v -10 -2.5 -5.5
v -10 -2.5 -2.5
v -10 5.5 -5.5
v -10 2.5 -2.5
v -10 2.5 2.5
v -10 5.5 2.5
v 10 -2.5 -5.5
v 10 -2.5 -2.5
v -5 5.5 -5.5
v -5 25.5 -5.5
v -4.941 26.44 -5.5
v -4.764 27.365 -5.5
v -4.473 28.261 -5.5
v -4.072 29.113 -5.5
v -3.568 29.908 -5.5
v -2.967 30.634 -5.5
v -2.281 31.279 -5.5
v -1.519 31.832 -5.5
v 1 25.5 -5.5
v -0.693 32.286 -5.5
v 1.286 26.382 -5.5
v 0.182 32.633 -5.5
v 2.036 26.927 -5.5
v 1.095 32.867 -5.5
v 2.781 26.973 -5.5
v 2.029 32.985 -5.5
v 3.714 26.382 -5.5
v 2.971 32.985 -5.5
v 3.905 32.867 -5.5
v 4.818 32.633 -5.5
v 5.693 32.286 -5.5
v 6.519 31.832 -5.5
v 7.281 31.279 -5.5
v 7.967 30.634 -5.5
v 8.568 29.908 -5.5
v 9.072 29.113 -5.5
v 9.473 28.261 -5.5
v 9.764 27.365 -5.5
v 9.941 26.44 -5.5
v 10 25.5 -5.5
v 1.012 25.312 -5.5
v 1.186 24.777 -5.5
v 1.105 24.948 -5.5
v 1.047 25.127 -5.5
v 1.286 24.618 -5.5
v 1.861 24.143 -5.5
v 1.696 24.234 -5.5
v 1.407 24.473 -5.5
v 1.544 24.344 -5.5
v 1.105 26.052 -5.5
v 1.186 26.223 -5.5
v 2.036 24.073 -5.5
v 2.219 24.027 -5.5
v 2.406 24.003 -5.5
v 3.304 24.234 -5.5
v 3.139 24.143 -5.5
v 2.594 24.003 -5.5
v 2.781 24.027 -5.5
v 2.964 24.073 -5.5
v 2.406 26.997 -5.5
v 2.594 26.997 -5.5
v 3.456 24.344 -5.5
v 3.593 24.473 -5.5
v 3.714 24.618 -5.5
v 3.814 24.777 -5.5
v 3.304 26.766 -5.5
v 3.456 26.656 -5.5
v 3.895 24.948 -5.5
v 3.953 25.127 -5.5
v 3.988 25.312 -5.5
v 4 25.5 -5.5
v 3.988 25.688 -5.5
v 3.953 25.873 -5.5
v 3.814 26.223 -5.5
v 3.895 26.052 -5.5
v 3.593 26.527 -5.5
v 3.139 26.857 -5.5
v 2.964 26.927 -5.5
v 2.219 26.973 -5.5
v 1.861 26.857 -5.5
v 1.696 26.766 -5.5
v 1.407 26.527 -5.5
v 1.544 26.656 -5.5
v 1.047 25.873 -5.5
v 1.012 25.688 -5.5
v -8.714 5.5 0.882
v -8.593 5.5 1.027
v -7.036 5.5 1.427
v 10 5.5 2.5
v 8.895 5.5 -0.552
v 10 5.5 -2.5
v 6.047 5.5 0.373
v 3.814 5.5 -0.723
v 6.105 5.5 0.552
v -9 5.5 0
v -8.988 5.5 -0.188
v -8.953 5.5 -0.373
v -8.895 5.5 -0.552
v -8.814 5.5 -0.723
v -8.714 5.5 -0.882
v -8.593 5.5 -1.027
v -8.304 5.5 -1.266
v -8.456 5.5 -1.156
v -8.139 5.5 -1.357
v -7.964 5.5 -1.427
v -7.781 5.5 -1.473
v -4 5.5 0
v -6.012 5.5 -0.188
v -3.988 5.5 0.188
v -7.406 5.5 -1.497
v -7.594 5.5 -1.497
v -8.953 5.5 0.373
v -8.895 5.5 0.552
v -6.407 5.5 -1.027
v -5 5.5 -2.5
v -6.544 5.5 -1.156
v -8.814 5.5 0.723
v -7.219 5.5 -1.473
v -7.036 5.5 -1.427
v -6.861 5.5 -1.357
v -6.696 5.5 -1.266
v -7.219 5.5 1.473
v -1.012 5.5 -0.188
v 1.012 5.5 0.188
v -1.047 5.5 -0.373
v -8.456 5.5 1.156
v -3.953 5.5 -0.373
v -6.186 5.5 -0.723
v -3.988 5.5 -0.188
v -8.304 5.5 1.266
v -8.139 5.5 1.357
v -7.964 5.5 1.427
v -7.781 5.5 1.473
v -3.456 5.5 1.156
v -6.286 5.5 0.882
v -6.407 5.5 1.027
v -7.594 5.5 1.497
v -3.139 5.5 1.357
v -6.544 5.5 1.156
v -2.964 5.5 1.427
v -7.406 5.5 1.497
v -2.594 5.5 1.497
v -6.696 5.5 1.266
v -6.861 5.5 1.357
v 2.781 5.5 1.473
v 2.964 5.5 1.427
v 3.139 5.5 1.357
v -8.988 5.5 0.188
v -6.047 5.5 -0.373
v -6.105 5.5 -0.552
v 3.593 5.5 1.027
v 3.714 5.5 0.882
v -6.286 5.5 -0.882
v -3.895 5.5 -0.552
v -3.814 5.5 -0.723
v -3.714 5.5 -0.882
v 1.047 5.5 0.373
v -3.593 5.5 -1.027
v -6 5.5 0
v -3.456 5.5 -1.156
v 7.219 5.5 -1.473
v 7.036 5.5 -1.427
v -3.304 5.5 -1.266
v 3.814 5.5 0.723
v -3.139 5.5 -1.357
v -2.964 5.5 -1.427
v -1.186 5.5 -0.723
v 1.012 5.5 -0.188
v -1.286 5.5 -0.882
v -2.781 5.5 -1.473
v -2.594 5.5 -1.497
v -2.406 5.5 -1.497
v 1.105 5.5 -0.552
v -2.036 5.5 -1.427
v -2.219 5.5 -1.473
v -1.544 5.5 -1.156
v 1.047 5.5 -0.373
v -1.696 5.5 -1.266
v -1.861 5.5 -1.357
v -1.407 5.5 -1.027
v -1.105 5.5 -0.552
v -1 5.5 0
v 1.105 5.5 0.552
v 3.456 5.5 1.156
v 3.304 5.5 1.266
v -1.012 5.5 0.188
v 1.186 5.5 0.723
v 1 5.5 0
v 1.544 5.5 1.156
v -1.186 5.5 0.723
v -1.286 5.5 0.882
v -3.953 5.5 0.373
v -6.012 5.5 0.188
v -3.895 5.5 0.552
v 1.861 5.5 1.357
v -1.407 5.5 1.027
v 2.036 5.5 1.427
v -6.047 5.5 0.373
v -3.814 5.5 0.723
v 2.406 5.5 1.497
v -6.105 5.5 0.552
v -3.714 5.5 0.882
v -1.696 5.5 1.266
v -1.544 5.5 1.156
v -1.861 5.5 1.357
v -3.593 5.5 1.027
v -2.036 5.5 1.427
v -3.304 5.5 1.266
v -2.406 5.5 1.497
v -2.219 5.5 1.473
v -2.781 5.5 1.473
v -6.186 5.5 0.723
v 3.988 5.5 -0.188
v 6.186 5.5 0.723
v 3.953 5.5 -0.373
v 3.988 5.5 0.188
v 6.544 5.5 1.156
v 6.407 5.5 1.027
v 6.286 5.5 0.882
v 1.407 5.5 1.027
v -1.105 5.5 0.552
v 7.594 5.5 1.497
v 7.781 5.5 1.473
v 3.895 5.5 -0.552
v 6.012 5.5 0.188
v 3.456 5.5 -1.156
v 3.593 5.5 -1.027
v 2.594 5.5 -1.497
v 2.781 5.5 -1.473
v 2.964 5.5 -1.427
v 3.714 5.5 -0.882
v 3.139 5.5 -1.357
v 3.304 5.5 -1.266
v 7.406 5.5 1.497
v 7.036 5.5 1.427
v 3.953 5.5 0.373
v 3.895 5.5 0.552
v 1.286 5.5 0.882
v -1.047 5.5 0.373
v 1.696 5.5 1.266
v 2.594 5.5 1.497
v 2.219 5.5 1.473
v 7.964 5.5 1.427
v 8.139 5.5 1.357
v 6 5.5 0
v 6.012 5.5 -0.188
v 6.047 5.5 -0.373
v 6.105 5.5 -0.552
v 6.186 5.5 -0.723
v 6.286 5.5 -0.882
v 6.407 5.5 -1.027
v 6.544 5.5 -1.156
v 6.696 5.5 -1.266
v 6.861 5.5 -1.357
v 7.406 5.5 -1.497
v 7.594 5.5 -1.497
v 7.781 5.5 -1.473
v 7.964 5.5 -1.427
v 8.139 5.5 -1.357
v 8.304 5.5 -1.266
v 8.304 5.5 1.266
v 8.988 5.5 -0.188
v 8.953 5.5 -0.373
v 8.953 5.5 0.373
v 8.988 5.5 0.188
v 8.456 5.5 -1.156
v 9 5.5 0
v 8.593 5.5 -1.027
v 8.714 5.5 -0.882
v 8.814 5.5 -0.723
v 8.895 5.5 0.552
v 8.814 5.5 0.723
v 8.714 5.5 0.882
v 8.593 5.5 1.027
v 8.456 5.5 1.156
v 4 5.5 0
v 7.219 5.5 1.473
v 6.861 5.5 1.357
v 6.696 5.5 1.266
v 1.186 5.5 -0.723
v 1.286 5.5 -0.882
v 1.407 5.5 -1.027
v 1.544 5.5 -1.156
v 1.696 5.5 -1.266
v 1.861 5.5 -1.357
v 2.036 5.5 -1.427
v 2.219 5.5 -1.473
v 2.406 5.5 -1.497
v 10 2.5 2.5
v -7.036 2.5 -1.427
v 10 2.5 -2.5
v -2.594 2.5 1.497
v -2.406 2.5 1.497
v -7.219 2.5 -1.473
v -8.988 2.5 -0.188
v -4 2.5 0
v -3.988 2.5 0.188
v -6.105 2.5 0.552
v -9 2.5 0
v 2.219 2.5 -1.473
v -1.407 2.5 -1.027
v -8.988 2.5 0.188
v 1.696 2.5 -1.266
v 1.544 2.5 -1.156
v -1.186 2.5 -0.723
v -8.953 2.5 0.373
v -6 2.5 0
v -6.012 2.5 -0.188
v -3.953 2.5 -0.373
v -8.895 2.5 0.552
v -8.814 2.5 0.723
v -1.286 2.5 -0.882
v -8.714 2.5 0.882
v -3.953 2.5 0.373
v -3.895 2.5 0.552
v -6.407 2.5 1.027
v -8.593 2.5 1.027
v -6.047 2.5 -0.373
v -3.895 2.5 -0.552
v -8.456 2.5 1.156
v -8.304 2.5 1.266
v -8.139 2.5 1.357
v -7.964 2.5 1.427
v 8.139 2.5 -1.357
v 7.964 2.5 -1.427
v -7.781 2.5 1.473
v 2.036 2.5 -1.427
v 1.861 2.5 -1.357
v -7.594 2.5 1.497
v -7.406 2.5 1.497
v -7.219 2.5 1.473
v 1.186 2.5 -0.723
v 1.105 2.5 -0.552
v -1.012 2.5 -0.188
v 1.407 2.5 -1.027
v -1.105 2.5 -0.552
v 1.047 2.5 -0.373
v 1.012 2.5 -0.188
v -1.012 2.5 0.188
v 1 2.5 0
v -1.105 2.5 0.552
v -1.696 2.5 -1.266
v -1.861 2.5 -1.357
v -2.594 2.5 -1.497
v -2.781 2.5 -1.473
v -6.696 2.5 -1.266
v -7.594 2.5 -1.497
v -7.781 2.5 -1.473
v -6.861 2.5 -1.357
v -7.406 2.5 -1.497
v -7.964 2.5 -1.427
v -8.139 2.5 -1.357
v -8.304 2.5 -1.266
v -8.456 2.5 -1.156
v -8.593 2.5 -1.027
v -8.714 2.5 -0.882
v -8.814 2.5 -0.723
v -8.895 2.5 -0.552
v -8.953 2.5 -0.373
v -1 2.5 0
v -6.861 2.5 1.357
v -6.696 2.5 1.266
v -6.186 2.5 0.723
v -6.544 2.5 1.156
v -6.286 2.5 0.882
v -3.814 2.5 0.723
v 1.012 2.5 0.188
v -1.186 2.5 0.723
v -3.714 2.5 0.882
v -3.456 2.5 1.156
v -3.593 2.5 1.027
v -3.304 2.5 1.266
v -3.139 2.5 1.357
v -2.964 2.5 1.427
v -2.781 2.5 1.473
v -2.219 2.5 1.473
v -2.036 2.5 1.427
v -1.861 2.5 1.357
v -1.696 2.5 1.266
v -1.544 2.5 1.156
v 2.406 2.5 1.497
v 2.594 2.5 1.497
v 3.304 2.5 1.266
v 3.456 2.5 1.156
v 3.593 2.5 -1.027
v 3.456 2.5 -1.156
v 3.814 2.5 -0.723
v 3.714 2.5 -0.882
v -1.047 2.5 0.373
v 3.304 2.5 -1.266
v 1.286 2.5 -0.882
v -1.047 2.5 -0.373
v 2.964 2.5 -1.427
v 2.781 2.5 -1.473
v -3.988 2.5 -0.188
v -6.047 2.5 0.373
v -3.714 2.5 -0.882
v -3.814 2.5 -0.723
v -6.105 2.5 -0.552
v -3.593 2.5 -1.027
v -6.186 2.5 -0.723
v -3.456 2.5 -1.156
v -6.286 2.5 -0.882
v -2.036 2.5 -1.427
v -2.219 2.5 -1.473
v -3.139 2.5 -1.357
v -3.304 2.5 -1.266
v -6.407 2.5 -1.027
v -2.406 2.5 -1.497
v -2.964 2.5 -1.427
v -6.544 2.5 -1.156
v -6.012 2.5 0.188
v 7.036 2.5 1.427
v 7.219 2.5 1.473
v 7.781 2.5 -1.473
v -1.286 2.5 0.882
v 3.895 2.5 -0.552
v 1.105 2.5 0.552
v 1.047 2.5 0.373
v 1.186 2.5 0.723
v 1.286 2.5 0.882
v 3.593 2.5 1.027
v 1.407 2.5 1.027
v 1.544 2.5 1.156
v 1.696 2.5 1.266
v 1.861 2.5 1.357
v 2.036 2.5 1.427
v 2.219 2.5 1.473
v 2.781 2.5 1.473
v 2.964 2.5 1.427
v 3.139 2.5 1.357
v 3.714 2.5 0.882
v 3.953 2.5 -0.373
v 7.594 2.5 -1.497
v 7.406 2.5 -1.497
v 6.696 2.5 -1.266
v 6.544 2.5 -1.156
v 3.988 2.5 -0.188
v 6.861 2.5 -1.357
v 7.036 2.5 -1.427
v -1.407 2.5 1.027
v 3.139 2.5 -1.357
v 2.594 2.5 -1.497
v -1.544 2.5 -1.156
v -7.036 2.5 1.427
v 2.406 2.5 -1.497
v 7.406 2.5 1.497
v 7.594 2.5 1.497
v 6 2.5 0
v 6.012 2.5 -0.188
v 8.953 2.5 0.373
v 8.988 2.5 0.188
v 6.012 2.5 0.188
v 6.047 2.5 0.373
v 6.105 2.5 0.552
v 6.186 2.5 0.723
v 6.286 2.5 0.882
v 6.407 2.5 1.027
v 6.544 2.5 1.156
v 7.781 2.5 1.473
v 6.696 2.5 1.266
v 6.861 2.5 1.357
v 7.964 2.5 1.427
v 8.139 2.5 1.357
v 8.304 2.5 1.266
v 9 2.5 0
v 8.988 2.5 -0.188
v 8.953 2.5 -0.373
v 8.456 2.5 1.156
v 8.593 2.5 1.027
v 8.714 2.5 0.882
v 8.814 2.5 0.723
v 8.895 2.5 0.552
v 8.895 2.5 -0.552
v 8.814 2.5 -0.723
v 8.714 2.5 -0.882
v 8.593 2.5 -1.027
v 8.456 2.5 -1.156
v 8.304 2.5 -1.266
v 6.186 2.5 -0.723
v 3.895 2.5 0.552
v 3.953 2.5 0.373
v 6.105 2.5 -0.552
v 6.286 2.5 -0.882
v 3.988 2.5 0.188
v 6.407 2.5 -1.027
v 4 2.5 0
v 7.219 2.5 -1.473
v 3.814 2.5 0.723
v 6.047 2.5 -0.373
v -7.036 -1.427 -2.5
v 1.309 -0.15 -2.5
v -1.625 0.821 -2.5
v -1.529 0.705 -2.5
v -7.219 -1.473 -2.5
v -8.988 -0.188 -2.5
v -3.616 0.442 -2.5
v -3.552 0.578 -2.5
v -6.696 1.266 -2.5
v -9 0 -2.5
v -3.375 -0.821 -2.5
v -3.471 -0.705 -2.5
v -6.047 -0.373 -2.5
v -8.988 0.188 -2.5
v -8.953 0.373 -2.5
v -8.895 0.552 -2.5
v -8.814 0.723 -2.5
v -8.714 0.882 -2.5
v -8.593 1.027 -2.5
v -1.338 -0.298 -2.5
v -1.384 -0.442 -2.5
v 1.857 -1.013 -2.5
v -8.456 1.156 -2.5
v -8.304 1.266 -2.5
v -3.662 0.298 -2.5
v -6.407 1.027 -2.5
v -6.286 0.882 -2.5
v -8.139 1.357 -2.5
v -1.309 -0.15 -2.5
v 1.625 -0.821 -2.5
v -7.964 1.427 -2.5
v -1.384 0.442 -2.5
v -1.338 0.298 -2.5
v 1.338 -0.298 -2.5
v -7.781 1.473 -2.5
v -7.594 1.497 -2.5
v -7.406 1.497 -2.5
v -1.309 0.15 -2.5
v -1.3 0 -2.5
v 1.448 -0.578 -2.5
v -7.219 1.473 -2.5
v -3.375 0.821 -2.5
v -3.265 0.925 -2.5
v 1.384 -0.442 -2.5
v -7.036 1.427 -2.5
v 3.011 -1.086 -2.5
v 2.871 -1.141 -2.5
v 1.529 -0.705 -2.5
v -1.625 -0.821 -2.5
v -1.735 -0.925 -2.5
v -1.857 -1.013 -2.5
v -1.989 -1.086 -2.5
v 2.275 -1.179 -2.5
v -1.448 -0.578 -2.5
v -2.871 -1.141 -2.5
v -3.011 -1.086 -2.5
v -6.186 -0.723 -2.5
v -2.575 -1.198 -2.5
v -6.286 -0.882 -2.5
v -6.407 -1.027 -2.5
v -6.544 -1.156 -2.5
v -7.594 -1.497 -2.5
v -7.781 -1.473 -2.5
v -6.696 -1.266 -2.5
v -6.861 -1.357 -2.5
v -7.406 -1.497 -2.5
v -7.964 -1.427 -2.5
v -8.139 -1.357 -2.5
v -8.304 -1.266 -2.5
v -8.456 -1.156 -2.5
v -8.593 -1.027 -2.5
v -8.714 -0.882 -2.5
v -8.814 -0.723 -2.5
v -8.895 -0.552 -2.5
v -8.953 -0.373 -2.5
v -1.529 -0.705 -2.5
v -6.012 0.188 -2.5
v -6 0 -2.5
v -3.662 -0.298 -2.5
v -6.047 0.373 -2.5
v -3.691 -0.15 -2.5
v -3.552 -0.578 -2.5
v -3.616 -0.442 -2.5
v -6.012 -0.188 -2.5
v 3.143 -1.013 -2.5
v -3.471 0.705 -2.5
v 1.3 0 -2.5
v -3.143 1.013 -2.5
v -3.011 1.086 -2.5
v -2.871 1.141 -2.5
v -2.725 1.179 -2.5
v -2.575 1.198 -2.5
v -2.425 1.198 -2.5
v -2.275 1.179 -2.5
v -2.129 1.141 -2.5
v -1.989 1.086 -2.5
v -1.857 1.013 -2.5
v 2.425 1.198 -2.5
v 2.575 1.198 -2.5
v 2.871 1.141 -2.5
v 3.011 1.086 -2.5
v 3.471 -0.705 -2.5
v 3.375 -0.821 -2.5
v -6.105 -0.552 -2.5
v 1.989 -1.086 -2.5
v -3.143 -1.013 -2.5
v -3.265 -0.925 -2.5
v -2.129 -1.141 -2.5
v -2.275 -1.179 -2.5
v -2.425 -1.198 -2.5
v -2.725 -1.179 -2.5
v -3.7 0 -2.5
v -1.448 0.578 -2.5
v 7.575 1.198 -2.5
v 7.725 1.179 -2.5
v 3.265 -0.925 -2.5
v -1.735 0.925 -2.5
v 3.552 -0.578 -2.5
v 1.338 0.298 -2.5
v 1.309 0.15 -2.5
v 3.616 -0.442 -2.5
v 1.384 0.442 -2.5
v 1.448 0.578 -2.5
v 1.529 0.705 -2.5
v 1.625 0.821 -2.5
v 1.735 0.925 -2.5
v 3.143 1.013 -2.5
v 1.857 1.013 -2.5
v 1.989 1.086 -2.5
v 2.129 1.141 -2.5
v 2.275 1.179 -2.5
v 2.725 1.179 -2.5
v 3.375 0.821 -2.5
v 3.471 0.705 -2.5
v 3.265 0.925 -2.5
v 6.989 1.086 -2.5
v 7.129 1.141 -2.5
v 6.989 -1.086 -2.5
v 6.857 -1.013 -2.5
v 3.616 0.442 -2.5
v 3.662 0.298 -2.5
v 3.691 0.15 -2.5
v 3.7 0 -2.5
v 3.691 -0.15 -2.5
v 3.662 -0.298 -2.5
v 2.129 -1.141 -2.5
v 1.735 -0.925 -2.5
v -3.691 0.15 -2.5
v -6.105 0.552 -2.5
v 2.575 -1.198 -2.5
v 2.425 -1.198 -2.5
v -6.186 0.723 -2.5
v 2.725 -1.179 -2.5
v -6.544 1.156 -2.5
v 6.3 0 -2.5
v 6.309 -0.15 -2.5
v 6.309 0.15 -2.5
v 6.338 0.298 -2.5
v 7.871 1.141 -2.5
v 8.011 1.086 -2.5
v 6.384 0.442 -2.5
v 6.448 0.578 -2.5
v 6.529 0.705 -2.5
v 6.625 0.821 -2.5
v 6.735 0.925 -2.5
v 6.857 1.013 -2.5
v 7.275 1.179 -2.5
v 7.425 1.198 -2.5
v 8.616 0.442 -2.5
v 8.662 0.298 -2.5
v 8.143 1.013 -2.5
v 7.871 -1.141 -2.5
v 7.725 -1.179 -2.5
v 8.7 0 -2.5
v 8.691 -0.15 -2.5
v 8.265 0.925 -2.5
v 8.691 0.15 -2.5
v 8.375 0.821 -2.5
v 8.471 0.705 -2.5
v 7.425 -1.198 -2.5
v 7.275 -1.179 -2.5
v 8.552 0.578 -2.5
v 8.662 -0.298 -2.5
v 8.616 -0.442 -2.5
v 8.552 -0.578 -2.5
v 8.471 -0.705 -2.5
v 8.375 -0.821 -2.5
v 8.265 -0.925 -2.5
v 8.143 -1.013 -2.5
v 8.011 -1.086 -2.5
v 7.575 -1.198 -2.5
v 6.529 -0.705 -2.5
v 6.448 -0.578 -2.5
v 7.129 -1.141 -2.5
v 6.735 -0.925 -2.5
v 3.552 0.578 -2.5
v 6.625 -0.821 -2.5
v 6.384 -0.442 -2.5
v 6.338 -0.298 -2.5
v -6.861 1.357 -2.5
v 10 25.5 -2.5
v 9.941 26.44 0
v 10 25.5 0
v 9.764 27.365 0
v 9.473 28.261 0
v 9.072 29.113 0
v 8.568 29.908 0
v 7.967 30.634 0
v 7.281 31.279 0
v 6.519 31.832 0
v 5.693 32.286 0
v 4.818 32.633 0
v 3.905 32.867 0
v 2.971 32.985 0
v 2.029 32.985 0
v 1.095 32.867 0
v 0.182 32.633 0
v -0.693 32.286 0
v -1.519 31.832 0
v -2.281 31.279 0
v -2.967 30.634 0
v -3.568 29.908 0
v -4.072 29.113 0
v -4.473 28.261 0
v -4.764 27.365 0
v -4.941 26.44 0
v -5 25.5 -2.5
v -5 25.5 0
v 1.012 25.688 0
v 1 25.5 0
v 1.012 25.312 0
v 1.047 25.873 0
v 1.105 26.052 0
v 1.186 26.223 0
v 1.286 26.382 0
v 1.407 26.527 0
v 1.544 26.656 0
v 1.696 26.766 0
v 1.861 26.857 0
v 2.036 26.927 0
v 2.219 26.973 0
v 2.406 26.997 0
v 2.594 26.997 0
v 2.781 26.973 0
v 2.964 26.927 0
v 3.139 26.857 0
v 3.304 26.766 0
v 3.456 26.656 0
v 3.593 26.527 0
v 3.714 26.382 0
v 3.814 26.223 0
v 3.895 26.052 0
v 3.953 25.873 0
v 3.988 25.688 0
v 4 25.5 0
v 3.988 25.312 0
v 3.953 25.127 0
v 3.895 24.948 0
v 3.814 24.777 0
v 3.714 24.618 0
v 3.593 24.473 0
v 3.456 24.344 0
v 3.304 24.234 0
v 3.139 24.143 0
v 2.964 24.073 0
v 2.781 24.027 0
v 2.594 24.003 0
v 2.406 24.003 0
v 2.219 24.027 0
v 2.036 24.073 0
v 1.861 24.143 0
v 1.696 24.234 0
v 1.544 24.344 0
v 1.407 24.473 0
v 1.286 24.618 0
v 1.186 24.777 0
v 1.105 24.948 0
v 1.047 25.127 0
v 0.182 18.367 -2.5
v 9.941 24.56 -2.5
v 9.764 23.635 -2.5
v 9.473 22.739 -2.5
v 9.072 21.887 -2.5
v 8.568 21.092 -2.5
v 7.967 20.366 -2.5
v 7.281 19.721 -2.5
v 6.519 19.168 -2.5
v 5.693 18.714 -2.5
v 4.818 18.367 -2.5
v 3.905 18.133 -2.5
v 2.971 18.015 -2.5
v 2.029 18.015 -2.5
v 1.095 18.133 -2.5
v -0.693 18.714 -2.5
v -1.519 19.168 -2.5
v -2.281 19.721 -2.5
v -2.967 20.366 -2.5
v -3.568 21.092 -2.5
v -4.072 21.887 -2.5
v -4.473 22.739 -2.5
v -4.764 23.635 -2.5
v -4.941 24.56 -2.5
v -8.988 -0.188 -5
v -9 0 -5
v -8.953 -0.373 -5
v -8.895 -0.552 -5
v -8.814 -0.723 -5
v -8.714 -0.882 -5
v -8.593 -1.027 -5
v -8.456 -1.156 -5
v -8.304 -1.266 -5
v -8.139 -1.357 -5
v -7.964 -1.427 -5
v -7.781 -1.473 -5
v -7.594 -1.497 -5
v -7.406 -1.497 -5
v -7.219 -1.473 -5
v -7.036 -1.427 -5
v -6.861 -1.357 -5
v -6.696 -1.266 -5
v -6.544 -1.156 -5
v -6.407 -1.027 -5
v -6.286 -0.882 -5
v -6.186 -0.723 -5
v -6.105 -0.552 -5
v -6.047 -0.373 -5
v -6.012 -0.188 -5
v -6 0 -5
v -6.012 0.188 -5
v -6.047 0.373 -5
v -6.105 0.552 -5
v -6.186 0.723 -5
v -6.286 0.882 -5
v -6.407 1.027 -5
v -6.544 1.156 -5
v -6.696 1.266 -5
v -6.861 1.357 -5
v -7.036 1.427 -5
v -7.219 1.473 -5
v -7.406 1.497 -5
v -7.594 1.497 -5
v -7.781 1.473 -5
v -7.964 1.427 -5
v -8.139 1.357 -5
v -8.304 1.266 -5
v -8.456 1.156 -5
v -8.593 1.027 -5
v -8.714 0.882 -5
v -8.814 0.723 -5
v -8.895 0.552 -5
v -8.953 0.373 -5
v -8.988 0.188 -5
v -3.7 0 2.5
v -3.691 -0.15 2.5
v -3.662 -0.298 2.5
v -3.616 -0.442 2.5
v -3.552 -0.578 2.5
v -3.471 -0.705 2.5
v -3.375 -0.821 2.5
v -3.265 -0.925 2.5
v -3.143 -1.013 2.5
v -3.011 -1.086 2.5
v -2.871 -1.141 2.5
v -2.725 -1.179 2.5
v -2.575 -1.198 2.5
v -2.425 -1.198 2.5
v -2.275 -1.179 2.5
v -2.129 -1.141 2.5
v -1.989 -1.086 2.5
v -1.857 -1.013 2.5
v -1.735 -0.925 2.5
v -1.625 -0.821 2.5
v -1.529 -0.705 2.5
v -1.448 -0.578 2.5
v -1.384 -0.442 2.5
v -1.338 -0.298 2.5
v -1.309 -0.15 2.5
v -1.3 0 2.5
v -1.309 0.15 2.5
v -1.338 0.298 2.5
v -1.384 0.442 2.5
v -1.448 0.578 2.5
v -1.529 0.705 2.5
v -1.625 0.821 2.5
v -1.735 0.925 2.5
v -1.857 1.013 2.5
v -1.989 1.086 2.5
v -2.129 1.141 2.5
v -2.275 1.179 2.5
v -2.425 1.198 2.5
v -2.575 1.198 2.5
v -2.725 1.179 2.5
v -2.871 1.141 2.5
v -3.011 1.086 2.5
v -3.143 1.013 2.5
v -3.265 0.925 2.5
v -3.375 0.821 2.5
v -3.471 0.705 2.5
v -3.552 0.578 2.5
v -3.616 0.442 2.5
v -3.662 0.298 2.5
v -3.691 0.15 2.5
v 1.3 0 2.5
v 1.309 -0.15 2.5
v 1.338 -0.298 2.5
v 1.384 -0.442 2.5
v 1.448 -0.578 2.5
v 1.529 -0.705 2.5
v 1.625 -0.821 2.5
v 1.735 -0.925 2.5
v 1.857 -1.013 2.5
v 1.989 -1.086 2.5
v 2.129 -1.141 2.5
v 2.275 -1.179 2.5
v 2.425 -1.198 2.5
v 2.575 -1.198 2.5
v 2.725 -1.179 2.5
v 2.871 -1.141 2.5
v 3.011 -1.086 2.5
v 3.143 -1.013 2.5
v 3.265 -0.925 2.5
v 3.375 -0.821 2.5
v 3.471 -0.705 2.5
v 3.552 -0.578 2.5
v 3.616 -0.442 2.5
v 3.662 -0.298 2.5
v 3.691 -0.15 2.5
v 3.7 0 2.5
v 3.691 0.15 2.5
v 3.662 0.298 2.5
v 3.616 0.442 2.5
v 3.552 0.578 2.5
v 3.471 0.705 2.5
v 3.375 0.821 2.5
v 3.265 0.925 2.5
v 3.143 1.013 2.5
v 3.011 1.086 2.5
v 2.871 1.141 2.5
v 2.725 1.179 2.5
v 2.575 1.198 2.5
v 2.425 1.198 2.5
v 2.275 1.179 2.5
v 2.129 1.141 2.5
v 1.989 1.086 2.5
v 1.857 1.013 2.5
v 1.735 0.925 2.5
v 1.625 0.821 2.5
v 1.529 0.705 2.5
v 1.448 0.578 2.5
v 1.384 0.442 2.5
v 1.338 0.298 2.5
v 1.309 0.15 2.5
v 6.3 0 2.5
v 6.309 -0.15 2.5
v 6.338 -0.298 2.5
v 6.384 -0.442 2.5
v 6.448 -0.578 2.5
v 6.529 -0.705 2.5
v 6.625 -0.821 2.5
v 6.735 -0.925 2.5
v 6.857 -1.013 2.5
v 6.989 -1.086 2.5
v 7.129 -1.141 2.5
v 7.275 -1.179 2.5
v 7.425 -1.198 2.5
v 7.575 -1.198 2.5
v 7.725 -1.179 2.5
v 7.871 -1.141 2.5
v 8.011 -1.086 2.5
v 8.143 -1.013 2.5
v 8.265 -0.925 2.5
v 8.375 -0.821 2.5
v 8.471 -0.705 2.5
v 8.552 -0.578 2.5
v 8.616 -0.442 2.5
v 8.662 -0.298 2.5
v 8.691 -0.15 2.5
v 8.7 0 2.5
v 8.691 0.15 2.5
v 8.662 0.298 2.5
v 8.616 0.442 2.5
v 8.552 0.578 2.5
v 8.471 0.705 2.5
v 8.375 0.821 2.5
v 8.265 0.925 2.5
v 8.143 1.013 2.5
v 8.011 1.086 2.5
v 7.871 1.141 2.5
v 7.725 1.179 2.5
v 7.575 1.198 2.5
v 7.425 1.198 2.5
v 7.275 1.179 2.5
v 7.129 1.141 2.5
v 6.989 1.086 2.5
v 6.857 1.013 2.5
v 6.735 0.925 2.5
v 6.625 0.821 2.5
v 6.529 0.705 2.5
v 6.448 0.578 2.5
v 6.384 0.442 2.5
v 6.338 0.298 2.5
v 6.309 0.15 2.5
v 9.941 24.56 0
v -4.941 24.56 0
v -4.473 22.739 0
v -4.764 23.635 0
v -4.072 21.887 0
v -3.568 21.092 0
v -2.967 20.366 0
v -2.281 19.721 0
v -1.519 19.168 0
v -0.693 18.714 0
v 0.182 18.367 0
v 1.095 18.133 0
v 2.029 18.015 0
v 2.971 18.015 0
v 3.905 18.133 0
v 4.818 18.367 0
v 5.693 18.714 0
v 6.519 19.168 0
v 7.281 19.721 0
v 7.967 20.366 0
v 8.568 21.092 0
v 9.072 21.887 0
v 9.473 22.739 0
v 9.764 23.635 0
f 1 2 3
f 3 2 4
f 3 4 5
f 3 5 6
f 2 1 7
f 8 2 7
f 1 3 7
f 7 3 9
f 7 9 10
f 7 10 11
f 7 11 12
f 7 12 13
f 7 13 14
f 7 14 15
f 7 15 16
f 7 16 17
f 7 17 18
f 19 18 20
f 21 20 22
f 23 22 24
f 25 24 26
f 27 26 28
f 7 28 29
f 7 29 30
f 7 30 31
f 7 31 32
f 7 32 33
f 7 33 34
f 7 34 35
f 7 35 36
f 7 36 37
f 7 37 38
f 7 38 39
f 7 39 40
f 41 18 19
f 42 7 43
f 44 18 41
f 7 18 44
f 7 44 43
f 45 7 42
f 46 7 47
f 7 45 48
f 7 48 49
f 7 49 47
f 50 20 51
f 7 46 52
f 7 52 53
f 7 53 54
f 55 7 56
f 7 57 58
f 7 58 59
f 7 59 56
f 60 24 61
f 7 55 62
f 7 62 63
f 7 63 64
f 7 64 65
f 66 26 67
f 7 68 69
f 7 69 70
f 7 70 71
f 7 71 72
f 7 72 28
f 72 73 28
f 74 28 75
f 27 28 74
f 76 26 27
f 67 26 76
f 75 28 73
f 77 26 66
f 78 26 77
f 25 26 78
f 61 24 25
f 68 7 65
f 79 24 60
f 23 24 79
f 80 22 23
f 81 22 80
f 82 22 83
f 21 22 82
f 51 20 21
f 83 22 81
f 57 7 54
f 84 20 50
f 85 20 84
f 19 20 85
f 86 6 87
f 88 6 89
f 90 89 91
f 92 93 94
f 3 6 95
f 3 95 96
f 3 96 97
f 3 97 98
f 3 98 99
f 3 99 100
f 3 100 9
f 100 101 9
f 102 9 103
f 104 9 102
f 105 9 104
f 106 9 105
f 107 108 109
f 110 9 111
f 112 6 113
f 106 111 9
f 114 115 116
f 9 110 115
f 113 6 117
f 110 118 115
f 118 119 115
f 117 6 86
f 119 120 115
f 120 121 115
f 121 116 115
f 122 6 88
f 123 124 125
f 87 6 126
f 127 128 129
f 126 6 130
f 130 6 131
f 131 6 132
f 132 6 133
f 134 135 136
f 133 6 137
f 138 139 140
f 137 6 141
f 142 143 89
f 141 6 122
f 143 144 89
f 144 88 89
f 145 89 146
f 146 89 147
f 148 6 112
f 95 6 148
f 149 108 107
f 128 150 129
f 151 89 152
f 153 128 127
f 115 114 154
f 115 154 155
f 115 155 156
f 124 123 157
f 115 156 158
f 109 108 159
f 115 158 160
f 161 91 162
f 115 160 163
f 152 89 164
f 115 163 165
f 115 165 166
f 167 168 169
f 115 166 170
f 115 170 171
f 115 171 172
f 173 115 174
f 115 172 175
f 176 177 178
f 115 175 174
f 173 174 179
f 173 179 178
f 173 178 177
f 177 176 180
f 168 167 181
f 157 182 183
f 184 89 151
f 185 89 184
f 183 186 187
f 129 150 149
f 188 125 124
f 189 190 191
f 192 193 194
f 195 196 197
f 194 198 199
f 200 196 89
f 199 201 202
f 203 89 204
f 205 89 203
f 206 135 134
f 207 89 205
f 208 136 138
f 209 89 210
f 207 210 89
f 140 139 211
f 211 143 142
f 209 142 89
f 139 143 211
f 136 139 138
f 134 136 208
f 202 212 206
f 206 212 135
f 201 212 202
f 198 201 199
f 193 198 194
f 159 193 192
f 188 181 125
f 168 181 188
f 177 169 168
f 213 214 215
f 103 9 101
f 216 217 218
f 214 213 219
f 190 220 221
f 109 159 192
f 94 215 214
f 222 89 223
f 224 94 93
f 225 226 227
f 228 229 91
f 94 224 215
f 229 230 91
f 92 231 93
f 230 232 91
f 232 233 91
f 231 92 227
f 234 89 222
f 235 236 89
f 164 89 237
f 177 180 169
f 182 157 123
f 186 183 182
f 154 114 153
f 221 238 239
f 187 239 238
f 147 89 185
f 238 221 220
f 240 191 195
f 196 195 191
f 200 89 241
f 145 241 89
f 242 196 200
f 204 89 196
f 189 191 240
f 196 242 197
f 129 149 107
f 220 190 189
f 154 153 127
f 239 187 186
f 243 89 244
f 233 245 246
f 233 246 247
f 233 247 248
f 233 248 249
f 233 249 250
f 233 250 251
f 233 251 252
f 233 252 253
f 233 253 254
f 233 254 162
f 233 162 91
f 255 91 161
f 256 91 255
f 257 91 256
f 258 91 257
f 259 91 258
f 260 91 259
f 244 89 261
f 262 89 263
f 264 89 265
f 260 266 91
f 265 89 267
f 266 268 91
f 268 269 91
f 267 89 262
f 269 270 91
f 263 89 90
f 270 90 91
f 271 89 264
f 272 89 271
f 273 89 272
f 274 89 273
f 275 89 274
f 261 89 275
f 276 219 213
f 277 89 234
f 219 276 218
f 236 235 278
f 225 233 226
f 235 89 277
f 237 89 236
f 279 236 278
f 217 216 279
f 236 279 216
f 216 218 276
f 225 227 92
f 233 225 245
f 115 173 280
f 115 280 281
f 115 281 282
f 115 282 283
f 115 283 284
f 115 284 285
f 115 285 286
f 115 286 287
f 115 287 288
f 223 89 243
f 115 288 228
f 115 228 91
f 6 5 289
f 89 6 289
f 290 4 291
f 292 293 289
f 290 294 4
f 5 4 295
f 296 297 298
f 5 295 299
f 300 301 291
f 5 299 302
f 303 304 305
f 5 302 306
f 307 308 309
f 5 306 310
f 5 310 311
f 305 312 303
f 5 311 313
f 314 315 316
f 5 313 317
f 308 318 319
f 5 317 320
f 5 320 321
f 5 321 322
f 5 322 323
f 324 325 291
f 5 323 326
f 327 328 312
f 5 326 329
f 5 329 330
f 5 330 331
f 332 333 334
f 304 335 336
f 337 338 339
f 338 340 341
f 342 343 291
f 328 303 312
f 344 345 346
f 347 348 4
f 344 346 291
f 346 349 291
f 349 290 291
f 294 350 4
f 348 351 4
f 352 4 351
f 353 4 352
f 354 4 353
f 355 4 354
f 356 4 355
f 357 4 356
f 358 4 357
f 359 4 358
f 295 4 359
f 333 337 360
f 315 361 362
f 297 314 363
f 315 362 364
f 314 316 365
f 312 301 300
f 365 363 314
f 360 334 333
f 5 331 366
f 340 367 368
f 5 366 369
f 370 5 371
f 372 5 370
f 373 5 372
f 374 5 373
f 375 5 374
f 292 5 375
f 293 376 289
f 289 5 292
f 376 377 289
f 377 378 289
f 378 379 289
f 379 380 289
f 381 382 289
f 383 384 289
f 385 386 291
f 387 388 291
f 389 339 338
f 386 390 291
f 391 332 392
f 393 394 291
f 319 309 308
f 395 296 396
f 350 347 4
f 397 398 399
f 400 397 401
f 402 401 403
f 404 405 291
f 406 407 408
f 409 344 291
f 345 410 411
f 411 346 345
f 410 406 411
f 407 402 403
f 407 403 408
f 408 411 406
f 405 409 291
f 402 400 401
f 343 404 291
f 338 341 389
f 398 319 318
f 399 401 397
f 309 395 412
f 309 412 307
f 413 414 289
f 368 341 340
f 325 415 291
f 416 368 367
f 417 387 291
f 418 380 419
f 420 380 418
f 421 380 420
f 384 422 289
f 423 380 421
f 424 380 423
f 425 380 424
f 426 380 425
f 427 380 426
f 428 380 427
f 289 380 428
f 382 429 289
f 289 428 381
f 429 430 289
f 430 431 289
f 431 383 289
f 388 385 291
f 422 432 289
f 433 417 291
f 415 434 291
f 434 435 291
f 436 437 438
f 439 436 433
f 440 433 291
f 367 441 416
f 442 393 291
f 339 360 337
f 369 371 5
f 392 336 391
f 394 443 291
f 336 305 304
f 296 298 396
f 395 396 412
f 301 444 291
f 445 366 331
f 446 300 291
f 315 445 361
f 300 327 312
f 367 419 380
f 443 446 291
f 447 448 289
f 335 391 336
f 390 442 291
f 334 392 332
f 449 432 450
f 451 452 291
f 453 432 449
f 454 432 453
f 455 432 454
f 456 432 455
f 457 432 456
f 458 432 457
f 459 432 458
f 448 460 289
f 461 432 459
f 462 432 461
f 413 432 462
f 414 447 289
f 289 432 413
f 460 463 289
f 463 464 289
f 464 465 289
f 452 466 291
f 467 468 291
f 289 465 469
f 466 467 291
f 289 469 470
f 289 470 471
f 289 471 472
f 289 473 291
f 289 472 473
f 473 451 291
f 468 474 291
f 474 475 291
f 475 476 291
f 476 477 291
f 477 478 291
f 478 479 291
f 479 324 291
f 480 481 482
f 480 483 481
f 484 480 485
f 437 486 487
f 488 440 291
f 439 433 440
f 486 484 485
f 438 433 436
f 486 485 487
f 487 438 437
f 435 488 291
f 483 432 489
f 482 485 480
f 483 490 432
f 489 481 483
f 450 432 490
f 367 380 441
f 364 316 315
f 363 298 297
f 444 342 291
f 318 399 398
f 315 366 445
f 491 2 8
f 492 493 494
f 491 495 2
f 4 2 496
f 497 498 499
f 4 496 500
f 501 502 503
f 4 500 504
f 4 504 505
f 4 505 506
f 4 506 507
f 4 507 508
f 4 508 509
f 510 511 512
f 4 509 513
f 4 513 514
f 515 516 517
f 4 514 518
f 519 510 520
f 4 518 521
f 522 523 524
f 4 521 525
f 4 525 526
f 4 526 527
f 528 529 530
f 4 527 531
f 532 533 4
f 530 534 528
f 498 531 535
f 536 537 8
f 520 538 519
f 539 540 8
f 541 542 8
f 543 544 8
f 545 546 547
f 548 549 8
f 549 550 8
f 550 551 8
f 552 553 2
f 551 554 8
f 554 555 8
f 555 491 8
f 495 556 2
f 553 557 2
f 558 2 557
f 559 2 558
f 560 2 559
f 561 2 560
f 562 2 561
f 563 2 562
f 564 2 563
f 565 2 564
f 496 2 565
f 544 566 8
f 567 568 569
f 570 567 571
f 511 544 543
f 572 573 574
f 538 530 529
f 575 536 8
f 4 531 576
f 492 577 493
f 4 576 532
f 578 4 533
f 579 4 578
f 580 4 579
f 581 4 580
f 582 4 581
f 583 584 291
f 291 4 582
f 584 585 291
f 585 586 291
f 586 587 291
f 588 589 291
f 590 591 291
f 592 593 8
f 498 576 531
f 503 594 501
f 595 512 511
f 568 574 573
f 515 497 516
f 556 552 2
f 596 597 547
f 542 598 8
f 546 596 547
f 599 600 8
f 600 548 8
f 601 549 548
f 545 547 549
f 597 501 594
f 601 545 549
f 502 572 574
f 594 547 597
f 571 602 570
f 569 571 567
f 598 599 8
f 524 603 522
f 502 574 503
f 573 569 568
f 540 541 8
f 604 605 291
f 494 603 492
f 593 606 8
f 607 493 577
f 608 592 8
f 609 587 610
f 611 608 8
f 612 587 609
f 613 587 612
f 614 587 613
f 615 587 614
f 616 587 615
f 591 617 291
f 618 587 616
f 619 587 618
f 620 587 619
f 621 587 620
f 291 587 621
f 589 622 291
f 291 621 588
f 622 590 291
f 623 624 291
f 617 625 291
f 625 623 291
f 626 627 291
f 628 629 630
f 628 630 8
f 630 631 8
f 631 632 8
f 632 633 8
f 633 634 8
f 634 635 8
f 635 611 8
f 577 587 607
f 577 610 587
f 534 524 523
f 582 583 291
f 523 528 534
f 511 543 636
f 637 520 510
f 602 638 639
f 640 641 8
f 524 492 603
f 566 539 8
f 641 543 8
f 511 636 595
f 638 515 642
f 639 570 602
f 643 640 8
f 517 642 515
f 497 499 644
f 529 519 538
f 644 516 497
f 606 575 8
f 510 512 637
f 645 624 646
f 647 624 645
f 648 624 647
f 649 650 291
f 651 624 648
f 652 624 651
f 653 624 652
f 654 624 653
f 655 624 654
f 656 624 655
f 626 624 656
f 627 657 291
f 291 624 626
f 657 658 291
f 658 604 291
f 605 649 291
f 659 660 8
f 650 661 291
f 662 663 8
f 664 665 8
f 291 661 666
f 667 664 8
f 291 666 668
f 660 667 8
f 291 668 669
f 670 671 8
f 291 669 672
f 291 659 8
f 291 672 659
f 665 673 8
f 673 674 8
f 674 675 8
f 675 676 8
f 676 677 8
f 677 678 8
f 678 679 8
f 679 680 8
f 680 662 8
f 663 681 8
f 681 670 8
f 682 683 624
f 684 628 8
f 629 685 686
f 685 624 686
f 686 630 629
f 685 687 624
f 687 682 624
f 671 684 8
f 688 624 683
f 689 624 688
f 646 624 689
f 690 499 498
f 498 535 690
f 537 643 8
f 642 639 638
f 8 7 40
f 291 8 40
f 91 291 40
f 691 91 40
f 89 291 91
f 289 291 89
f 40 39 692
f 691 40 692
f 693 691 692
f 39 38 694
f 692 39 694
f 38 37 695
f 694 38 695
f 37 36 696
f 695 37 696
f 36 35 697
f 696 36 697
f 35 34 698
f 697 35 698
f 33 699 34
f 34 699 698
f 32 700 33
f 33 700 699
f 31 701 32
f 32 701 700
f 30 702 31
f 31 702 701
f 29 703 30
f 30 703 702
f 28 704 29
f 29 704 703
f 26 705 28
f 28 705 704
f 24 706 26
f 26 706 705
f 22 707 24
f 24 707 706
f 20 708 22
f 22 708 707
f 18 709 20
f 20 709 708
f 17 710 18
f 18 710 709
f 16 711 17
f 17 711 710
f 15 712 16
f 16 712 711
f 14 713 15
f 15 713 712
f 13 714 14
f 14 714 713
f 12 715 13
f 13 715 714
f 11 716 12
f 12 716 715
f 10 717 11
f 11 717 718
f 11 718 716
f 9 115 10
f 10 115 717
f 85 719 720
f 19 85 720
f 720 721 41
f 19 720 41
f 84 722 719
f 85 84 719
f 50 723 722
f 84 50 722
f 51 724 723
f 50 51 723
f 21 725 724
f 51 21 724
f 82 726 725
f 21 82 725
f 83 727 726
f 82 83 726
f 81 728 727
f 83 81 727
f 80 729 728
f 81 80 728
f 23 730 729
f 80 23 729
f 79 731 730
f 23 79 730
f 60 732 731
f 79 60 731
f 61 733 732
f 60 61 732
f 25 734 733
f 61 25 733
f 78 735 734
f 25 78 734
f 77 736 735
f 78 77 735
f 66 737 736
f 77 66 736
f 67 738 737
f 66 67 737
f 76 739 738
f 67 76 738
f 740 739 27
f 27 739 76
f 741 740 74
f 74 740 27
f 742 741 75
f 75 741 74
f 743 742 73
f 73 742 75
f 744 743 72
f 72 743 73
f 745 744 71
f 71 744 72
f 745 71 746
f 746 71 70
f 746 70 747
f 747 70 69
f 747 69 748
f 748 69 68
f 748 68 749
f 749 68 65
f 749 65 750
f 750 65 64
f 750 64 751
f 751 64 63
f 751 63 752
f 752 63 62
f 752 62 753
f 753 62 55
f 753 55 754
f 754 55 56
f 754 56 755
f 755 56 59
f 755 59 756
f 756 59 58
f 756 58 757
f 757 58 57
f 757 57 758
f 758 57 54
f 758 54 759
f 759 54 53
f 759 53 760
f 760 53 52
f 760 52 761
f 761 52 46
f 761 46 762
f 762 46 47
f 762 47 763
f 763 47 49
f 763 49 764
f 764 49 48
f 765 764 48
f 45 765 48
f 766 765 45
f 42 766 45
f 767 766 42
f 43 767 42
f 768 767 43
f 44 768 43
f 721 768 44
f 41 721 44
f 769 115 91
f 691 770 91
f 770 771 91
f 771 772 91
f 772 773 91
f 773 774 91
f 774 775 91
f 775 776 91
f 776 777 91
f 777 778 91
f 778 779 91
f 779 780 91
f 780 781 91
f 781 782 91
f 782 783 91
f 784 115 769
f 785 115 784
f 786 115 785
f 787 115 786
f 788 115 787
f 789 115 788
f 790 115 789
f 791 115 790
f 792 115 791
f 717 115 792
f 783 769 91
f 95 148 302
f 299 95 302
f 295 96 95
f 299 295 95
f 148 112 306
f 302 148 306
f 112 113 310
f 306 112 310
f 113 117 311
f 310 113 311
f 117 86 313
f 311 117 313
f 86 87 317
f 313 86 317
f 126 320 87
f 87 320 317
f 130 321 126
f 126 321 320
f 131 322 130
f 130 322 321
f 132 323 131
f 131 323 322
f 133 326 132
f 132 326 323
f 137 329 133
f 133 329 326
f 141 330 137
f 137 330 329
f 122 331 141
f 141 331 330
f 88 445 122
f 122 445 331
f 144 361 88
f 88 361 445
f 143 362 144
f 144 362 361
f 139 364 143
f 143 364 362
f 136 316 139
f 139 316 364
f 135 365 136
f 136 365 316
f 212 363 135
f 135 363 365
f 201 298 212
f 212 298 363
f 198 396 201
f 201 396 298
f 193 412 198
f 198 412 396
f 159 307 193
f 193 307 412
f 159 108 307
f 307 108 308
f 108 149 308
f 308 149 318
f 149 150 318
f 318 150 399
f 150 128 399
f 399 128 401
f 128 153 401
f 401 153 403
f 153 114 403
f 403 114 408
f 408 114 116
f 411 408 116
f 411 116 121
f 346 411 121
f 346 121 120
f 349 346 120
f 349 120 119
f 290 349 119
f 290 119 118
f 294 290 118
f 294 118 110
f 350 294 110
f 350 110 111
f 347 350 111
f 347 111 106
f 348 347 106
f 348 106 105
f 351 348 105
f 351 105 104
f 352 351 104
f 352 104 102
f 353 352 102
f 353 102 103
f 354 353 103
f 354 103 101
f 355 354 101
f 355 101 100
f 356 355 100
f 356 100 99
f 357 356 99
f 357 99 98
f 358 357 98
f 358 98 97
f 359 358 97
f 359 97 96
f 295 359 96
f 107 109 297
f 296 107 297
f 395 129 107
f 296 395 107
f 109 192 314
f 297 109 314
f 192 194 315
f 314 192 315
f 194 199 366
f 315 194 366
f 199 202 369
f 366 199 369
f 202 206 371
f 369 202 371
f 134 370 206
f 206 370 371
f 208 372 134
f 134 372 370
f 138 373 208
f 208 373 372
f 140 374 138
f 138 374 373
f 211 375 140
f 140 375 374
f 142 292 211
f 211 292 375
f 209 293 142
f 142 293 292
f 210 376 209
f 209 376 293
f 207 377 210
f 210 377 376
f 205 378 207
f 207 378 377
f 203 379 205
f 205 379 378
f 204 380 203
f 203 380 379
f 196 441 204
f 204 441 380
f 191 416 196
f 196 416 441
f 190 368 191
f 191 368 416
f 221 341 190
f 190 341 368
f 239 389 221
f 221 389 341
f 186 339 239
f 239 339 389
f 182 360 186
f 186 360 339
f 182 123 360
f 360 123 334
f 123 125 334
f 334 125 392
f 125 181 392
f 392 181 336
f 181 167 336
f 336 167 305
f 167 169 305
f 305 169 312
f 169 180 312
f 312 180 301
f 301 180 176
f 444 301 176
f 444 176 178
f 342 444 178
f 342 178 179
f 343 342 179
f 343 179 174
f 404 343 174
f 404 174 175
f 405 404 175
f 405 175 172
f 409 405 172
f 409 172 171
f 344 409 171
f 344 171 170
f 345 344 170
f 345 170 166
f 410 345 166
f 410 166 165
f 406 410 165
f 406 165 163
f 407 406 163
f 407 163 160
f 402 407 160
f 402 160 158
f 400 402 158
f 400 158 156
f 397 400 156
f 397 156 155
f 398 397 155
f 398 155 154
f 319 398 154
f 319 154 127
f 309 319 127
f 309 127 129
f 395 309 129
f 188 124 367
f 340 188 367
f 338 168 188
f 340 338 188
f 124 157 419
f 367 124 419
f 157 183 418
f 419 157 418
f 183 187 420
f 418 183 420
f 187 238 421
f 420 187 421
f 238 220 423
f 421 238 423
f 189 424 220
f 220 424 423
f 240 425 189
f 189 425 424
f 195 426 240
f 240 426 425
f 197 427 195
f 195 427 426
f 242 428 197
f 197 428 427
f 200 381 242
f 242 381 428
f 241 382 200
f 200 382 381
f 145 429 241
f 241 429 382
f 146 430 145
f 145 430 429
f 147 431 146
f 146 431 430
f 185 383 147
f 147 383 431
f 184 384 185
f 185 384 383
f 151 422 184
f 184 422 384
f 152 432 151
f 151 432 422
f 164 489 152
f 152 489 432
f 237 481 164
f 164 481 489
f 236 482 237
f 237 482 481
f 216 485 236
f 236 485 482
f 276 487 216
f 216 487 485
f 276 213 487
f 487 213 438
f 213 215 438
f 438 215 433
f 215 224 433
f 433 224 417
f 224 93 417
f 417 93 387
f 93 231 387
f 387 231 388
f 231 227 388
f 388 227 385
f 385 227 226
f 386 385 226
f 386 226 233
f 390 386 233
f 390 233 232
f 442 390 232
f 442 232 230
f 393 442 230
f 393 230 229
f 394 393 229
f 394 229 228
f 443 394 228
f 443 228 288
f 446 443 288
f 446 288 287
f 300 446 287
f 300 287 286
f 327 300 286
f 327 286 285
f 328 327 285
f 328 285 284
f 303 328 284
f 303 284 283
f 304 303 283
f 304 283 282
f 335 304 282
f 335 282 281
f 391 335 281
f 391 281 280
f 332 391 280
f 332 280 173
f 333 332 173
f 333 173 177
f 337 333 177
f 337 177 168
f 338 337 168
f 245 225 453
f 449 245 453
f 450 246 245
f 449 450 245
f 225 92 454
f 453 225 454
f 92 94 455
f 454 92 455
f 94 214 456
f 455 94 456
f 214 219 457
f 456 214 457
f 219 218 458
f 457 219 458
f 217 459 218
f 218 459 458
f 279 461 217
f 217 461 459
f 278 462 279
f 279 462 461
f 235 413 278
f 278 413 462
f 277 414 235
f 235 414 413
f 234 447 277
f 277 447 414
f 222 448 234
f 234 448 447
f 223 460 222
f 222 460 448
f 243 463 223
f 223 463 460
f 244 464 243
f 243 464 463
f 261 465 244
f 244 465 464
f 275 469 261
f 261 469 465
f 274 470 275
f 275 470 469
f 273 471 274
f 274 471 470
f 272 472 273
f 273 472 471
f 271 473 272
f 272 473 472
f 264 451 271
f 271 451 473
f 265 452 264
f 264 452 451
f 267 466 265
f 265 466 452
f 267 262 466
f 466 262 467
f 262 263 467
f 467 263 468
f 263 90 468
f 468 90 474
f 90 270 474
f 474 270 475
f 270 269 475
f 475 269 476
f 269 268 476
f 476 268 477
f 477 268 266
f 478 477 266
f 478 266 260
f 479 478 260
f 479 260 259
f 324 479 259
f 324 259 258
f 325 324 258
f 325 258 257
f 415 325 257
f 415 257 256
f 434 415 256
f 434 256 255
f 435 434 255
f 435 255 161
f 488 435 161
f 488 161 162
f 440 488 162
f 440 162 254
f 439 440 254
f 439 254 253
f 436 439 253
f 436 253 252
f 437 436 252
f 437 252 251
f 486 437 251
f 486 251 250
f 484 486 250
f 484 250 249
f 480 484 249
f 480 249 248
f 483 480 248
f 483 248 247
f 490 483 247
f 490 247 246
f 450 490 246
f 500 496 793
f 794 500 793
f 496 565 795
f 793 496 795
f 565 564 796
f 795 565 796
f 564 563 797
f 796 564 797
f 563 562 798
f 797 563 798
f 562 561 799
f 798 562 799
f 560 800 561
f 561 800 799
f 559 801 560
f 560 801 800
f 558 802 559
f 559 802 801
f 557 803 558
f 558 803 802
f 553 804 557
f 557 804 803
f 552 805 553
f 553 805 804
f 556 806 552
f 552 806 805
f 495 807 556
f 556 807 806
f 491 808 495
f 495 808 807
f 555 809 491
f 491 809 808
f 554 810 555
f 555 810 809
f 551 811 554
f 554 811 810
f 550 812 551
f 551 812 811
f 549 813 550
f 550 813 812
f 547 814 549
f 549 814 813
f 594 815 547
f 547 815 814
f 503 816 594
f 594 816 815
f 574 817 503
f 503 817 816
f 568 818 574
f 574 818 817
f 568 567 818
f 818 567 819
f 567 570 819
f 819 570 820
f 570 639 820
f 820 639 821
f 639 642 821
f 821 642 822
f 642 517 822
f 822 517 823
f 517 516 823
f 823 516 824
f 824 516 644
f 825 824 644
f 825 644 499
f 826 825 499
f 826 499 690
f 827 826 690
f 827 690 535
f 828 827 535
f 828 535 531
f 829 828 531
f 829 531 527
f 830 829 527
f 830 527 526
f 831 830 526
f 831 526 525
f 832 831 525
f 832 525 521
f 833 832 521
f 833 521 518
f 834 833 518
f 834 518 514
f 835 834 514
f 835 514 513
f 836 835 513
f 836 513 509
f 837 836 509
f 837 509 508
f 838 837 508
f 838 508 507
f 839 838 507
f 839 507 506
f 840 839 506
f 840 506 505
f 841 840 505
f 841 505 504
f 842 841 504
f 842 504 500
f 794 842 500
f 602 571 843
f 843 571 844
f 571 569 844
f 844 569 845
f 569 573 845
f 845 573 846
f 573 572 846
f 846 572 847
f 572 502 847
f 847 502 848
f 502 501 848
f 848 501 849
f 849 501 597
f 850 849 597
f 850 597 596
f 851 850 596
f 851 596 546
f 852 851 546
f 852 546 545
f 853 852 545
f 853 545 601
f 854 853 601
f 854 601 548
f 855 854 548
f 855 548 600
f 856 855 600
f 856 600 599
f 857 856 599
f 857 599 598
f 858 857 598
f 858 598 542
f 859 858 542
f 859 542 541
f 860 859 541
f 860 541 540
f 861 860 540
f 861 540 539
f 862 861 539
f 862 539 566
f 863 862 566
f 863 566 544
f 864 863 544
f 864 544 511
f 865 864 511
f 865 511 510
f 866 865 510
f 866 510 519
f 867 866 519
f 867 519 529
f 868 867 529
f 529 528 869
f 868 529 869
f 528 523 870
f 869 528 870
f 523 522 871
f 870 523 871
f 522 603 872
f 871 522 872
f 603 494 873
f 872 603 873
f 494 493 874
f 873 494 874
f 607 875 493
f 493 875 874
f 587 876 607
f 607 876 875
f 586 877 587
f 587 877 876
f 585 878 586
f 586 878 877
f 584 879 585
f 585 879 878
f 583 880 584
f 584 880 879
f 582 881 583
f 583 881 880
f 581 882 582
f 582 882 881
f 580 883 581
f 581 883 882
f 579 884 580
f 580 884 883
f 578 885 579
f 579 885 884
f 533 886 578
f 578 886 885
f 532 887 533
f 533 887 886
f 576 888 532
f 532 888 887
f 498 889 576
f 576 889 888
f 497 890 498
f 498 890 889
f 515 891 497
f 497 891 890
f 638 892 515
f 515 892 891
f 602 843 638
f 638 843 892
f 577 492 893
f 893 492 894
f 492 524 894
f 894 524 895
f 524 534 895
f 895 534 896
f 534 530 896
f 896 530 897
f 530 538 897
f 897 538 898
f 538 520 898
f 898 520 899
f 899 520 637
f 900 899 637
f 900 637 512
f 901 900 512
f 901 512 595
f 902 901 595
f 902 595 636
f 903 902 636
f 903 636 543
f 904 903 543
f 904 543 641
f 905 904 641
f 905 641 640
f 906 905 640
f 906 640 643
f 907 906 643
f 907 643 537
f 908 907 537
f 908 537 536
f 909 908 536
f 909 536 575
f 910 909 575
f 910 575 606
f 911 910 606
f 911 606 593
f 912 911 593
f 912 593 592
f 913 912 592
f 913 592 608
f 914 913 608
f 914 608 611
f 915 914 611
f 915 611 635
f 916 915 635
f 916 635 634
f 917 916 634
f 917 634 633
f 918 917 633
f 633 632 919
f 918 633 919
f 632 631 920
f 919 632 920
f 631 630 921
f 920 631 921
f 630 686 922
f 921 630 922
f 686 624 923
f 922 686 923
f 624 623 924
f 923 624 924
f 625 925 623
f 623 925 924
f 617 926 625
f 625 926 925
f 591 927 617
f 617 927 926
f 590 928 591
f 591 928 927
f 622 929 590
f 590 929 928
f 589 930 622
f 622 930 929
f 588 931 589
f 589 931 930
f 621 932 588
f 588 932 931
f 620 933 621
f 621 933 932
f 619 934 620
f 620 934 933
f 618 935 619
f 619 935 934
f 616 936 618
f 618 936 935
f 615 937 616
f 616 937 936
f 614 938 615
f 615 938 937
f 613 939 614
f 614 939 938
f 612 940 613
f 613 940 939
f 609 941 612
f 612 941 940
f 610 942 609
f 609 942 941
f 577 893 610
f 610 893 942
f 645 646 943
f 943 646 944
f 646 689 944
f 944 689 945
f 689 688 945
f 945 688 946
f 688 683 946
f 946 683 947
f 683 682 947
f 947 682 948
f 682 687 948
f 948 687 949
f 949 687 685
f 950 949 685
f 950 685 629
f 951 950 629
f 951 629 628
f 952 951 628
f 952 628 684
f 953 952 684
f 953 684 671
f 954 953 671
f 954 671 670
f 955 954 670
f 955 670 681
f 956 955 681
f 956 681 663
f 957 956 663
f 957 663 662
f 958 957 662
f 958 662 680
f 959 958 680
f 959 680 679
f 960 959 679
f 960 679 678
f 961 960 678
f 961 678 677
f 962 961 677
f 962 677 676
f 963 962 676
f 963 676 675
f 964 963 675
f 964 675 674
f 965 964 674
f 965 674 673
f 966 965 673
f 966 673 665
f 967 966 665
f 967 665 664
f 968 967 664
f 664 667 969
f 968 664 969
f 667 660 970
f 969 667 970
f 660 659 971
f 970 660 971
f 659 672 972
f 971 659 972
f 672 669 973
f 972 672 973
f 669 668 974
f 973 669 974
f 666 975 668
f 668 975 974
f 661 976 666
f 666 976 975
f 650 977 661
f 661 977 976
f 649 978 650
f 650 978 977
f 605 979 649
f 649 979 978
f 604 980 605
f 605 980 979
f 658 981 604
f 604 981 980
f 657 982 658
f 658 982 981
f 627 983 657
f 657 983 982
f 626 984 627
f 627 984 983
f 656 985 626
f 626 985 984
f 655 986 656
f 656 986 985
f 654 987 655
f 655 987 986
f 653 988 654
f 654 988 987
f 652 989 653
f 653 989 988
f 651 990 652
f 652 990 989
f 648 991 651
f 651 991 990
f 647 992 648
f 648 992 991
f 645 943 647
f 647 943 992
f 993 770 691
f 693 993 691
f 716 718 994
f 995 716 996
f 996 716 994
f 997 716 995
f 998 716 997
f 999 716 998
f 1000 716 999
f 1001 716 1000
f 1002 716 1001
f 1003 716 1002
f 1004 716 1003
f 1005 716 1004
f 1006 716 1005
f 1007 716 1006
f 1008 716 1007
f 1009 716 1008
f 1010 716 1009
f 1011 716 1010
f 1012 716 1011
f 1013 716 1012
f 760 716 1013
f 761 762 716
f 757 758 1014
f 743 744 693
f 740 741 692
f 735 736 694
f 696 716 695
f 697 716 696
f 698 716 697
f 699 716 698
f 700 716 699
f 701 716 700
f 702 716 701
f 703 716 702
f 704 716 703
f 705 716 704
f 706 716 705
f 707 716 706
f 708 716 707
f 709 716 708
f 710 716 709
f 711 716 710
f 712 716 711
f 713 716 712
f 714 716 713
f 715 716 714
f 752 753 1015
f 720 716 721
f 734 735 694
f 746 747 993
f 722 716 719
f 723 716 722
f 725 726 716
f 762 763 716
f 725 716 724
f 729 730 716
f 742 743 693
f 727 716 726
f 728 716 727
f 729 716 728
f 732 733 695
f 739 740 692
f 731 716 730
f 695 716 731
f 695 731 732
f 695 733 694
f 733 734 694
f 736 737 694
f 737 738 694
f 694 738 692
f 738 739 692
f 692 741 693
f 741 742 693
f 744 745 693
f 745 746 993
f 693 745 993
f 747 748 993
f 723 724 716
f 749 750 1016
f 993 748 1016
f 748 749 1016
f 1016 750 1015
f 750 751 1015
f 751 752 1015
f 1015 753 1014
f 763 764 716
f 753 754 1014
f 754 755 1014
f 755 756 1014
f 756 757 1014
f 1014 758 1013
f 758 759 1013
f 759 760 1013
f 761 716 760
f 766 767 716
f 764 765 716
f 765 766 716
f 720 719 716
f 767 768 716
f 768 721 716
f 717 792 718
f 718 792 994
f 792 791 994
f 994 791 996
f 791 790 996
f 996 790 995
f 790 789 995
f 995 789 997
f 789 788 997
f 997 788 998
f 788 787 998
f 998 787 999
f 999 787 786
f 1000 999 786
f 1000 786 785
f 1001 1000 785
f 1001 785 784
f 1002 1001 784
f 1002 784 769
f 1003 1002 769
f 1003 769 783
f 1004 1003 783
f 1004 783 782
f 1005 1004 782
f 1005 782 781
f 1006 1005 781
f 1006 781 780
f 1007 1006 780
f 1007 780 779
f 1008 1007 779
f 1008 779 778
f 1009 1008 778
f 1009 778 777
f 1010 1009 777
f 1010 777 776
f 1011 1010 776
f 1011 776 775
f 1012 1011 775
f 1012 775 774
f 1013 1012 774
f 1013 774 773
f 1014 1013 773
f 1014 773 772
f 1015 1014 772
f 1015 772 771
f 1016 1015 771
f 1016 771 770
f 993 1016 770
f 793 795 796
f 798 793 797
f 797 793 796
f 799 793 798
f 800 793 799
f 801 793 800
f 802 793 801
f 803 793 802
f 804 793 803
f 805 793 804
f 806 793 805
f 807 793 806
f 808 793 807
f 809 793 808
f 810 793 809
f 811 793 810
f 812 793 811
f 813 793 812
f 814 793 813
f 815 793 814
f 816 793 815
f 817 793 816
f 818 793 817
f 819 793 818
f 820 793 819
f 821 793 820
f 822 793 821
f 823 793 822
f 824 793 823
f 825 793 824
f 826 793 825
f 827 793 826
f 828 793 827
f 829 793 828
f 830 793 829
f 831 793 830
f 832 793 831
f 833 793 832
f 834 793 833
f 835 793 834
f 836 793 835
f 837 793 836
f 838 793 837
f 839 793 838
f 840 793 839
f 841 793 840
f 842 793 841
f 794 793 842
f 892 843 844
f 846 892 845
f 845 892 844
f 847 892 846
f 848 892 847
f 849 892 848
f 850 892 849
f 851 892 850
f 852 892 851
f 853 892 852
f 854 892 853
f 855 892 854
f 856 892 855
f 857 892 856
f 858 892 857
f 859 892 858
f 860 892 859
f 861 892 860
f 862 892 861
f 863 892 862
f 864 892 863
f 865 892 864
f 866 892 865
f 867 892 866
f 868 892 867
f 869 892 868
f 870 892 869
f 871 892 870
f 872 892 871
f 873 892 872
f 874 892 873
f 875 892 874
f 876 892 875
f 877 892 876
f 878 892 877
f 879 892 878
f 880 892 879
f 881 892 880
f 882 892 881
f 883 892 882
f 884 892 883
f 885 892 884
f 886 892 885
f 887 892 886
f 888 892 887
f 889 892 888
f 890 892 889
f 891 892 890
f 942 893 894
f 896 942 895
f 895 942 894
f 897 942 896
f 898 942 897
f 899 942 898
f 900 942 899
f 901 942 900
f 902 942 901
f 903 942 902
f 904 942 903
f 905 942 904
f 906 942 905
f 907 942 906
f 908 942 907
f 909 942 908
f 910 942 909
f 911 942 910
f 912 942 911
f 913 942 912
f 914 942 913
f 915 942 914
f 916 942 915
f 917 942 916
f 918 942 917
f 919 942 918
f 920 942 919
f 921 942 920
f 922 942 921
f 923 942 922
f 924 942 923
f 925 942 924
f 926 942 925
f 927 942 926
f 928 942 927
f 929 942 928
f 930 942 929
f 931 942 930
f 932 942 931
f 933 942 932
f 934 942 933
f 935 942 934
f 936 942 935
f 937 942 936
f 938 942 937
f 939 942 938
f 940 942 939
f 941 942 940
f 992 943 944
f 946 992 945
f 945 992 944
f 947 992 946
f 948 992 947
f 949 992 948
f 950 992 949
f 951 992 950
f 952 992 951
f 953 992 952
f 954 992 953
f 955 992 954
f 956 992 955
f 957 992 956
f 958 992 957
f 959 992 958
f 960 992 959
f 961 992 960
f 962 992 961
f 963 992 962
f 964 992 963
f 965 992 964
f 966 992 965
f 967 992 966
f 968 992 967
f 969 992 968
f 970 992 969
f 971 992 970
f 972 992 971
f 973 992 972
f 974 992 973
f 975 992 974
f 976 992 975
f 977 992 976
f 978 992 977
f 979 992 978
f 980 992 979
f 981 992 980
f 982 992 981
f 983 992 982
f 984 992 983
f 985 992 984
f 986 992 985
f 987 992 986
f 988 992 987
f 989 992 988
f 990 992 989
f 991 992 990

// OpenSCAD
Nx = 4;
Ny = 1;
Nz = 1;
Xoff = -0.5;
Yoff = -0.5;
Zoff = -0.5;
r = 1.2;
rl =1.5;
Dx = 5.0;
Dy = 5.0;
Dz = 5.0;
$fn = 50;
d = 3;
hm = 20;
dm = 2.5;
rlm = 1.5;

difference(){
	union(){
		translate([-Dx*Nx/2, -Dy*Ny/2, -Dz*Nz/2]){
			translate([0,0,-d]) cube([Dx*Nx,Dy*Ny+d,d]);
			translate([Dx,Dy*Ny+d,-d]) cube([Dx*(Nx-1),hm,d]);
			translate([Dx*(Nx+1)/2,Dy*Ny+d+hm,-d])	cylinder(r=Dx*(Nx-1)/2,h=d+dm);
			translate([0,Dy*Ny,0]) cube([Dx*Nx,d,Dz*Nz]);
		}

		for(yi = [1:Ny]){
			for(xi = [2:Nx]){
				translate([(Xoff+(xi-Nx/2))*Dx,(Yoff+(yi-Ny/2))*Dy,-Dz*Nz/2]){
					cylinder(Dz*Nz,r,r,0);
				}
			}
		}

	
	}

		rotate([-90,0,0]){
			for(zi = [1:Nz]){
				for(xi = [1:Nx]){
					translate([(Xoff+(xi-Nx/2))*Dx,(Zoff+(zi-Nz/2))*Dz,-Dy*Ny/2+Dy-1]){
						#cylinder(d+2,rl,rl,0);
					}
				}
			}
		}
	translate([Dx*(Nx+1)/2-Dx*Nx/2,Dy*Ny+d+hm-Dy*Ny/2,-d-Dz*Nz/2-1])	#cylinder(r=rlm,h=d+dm+2);

	translate([(Xoff+(1-Nx/2))*Dx,(Yoff+(1-Ny/2))*Dy,-Dz*Nz]){
		#cylinder(d+1,rl,rl,0);
	}

};
